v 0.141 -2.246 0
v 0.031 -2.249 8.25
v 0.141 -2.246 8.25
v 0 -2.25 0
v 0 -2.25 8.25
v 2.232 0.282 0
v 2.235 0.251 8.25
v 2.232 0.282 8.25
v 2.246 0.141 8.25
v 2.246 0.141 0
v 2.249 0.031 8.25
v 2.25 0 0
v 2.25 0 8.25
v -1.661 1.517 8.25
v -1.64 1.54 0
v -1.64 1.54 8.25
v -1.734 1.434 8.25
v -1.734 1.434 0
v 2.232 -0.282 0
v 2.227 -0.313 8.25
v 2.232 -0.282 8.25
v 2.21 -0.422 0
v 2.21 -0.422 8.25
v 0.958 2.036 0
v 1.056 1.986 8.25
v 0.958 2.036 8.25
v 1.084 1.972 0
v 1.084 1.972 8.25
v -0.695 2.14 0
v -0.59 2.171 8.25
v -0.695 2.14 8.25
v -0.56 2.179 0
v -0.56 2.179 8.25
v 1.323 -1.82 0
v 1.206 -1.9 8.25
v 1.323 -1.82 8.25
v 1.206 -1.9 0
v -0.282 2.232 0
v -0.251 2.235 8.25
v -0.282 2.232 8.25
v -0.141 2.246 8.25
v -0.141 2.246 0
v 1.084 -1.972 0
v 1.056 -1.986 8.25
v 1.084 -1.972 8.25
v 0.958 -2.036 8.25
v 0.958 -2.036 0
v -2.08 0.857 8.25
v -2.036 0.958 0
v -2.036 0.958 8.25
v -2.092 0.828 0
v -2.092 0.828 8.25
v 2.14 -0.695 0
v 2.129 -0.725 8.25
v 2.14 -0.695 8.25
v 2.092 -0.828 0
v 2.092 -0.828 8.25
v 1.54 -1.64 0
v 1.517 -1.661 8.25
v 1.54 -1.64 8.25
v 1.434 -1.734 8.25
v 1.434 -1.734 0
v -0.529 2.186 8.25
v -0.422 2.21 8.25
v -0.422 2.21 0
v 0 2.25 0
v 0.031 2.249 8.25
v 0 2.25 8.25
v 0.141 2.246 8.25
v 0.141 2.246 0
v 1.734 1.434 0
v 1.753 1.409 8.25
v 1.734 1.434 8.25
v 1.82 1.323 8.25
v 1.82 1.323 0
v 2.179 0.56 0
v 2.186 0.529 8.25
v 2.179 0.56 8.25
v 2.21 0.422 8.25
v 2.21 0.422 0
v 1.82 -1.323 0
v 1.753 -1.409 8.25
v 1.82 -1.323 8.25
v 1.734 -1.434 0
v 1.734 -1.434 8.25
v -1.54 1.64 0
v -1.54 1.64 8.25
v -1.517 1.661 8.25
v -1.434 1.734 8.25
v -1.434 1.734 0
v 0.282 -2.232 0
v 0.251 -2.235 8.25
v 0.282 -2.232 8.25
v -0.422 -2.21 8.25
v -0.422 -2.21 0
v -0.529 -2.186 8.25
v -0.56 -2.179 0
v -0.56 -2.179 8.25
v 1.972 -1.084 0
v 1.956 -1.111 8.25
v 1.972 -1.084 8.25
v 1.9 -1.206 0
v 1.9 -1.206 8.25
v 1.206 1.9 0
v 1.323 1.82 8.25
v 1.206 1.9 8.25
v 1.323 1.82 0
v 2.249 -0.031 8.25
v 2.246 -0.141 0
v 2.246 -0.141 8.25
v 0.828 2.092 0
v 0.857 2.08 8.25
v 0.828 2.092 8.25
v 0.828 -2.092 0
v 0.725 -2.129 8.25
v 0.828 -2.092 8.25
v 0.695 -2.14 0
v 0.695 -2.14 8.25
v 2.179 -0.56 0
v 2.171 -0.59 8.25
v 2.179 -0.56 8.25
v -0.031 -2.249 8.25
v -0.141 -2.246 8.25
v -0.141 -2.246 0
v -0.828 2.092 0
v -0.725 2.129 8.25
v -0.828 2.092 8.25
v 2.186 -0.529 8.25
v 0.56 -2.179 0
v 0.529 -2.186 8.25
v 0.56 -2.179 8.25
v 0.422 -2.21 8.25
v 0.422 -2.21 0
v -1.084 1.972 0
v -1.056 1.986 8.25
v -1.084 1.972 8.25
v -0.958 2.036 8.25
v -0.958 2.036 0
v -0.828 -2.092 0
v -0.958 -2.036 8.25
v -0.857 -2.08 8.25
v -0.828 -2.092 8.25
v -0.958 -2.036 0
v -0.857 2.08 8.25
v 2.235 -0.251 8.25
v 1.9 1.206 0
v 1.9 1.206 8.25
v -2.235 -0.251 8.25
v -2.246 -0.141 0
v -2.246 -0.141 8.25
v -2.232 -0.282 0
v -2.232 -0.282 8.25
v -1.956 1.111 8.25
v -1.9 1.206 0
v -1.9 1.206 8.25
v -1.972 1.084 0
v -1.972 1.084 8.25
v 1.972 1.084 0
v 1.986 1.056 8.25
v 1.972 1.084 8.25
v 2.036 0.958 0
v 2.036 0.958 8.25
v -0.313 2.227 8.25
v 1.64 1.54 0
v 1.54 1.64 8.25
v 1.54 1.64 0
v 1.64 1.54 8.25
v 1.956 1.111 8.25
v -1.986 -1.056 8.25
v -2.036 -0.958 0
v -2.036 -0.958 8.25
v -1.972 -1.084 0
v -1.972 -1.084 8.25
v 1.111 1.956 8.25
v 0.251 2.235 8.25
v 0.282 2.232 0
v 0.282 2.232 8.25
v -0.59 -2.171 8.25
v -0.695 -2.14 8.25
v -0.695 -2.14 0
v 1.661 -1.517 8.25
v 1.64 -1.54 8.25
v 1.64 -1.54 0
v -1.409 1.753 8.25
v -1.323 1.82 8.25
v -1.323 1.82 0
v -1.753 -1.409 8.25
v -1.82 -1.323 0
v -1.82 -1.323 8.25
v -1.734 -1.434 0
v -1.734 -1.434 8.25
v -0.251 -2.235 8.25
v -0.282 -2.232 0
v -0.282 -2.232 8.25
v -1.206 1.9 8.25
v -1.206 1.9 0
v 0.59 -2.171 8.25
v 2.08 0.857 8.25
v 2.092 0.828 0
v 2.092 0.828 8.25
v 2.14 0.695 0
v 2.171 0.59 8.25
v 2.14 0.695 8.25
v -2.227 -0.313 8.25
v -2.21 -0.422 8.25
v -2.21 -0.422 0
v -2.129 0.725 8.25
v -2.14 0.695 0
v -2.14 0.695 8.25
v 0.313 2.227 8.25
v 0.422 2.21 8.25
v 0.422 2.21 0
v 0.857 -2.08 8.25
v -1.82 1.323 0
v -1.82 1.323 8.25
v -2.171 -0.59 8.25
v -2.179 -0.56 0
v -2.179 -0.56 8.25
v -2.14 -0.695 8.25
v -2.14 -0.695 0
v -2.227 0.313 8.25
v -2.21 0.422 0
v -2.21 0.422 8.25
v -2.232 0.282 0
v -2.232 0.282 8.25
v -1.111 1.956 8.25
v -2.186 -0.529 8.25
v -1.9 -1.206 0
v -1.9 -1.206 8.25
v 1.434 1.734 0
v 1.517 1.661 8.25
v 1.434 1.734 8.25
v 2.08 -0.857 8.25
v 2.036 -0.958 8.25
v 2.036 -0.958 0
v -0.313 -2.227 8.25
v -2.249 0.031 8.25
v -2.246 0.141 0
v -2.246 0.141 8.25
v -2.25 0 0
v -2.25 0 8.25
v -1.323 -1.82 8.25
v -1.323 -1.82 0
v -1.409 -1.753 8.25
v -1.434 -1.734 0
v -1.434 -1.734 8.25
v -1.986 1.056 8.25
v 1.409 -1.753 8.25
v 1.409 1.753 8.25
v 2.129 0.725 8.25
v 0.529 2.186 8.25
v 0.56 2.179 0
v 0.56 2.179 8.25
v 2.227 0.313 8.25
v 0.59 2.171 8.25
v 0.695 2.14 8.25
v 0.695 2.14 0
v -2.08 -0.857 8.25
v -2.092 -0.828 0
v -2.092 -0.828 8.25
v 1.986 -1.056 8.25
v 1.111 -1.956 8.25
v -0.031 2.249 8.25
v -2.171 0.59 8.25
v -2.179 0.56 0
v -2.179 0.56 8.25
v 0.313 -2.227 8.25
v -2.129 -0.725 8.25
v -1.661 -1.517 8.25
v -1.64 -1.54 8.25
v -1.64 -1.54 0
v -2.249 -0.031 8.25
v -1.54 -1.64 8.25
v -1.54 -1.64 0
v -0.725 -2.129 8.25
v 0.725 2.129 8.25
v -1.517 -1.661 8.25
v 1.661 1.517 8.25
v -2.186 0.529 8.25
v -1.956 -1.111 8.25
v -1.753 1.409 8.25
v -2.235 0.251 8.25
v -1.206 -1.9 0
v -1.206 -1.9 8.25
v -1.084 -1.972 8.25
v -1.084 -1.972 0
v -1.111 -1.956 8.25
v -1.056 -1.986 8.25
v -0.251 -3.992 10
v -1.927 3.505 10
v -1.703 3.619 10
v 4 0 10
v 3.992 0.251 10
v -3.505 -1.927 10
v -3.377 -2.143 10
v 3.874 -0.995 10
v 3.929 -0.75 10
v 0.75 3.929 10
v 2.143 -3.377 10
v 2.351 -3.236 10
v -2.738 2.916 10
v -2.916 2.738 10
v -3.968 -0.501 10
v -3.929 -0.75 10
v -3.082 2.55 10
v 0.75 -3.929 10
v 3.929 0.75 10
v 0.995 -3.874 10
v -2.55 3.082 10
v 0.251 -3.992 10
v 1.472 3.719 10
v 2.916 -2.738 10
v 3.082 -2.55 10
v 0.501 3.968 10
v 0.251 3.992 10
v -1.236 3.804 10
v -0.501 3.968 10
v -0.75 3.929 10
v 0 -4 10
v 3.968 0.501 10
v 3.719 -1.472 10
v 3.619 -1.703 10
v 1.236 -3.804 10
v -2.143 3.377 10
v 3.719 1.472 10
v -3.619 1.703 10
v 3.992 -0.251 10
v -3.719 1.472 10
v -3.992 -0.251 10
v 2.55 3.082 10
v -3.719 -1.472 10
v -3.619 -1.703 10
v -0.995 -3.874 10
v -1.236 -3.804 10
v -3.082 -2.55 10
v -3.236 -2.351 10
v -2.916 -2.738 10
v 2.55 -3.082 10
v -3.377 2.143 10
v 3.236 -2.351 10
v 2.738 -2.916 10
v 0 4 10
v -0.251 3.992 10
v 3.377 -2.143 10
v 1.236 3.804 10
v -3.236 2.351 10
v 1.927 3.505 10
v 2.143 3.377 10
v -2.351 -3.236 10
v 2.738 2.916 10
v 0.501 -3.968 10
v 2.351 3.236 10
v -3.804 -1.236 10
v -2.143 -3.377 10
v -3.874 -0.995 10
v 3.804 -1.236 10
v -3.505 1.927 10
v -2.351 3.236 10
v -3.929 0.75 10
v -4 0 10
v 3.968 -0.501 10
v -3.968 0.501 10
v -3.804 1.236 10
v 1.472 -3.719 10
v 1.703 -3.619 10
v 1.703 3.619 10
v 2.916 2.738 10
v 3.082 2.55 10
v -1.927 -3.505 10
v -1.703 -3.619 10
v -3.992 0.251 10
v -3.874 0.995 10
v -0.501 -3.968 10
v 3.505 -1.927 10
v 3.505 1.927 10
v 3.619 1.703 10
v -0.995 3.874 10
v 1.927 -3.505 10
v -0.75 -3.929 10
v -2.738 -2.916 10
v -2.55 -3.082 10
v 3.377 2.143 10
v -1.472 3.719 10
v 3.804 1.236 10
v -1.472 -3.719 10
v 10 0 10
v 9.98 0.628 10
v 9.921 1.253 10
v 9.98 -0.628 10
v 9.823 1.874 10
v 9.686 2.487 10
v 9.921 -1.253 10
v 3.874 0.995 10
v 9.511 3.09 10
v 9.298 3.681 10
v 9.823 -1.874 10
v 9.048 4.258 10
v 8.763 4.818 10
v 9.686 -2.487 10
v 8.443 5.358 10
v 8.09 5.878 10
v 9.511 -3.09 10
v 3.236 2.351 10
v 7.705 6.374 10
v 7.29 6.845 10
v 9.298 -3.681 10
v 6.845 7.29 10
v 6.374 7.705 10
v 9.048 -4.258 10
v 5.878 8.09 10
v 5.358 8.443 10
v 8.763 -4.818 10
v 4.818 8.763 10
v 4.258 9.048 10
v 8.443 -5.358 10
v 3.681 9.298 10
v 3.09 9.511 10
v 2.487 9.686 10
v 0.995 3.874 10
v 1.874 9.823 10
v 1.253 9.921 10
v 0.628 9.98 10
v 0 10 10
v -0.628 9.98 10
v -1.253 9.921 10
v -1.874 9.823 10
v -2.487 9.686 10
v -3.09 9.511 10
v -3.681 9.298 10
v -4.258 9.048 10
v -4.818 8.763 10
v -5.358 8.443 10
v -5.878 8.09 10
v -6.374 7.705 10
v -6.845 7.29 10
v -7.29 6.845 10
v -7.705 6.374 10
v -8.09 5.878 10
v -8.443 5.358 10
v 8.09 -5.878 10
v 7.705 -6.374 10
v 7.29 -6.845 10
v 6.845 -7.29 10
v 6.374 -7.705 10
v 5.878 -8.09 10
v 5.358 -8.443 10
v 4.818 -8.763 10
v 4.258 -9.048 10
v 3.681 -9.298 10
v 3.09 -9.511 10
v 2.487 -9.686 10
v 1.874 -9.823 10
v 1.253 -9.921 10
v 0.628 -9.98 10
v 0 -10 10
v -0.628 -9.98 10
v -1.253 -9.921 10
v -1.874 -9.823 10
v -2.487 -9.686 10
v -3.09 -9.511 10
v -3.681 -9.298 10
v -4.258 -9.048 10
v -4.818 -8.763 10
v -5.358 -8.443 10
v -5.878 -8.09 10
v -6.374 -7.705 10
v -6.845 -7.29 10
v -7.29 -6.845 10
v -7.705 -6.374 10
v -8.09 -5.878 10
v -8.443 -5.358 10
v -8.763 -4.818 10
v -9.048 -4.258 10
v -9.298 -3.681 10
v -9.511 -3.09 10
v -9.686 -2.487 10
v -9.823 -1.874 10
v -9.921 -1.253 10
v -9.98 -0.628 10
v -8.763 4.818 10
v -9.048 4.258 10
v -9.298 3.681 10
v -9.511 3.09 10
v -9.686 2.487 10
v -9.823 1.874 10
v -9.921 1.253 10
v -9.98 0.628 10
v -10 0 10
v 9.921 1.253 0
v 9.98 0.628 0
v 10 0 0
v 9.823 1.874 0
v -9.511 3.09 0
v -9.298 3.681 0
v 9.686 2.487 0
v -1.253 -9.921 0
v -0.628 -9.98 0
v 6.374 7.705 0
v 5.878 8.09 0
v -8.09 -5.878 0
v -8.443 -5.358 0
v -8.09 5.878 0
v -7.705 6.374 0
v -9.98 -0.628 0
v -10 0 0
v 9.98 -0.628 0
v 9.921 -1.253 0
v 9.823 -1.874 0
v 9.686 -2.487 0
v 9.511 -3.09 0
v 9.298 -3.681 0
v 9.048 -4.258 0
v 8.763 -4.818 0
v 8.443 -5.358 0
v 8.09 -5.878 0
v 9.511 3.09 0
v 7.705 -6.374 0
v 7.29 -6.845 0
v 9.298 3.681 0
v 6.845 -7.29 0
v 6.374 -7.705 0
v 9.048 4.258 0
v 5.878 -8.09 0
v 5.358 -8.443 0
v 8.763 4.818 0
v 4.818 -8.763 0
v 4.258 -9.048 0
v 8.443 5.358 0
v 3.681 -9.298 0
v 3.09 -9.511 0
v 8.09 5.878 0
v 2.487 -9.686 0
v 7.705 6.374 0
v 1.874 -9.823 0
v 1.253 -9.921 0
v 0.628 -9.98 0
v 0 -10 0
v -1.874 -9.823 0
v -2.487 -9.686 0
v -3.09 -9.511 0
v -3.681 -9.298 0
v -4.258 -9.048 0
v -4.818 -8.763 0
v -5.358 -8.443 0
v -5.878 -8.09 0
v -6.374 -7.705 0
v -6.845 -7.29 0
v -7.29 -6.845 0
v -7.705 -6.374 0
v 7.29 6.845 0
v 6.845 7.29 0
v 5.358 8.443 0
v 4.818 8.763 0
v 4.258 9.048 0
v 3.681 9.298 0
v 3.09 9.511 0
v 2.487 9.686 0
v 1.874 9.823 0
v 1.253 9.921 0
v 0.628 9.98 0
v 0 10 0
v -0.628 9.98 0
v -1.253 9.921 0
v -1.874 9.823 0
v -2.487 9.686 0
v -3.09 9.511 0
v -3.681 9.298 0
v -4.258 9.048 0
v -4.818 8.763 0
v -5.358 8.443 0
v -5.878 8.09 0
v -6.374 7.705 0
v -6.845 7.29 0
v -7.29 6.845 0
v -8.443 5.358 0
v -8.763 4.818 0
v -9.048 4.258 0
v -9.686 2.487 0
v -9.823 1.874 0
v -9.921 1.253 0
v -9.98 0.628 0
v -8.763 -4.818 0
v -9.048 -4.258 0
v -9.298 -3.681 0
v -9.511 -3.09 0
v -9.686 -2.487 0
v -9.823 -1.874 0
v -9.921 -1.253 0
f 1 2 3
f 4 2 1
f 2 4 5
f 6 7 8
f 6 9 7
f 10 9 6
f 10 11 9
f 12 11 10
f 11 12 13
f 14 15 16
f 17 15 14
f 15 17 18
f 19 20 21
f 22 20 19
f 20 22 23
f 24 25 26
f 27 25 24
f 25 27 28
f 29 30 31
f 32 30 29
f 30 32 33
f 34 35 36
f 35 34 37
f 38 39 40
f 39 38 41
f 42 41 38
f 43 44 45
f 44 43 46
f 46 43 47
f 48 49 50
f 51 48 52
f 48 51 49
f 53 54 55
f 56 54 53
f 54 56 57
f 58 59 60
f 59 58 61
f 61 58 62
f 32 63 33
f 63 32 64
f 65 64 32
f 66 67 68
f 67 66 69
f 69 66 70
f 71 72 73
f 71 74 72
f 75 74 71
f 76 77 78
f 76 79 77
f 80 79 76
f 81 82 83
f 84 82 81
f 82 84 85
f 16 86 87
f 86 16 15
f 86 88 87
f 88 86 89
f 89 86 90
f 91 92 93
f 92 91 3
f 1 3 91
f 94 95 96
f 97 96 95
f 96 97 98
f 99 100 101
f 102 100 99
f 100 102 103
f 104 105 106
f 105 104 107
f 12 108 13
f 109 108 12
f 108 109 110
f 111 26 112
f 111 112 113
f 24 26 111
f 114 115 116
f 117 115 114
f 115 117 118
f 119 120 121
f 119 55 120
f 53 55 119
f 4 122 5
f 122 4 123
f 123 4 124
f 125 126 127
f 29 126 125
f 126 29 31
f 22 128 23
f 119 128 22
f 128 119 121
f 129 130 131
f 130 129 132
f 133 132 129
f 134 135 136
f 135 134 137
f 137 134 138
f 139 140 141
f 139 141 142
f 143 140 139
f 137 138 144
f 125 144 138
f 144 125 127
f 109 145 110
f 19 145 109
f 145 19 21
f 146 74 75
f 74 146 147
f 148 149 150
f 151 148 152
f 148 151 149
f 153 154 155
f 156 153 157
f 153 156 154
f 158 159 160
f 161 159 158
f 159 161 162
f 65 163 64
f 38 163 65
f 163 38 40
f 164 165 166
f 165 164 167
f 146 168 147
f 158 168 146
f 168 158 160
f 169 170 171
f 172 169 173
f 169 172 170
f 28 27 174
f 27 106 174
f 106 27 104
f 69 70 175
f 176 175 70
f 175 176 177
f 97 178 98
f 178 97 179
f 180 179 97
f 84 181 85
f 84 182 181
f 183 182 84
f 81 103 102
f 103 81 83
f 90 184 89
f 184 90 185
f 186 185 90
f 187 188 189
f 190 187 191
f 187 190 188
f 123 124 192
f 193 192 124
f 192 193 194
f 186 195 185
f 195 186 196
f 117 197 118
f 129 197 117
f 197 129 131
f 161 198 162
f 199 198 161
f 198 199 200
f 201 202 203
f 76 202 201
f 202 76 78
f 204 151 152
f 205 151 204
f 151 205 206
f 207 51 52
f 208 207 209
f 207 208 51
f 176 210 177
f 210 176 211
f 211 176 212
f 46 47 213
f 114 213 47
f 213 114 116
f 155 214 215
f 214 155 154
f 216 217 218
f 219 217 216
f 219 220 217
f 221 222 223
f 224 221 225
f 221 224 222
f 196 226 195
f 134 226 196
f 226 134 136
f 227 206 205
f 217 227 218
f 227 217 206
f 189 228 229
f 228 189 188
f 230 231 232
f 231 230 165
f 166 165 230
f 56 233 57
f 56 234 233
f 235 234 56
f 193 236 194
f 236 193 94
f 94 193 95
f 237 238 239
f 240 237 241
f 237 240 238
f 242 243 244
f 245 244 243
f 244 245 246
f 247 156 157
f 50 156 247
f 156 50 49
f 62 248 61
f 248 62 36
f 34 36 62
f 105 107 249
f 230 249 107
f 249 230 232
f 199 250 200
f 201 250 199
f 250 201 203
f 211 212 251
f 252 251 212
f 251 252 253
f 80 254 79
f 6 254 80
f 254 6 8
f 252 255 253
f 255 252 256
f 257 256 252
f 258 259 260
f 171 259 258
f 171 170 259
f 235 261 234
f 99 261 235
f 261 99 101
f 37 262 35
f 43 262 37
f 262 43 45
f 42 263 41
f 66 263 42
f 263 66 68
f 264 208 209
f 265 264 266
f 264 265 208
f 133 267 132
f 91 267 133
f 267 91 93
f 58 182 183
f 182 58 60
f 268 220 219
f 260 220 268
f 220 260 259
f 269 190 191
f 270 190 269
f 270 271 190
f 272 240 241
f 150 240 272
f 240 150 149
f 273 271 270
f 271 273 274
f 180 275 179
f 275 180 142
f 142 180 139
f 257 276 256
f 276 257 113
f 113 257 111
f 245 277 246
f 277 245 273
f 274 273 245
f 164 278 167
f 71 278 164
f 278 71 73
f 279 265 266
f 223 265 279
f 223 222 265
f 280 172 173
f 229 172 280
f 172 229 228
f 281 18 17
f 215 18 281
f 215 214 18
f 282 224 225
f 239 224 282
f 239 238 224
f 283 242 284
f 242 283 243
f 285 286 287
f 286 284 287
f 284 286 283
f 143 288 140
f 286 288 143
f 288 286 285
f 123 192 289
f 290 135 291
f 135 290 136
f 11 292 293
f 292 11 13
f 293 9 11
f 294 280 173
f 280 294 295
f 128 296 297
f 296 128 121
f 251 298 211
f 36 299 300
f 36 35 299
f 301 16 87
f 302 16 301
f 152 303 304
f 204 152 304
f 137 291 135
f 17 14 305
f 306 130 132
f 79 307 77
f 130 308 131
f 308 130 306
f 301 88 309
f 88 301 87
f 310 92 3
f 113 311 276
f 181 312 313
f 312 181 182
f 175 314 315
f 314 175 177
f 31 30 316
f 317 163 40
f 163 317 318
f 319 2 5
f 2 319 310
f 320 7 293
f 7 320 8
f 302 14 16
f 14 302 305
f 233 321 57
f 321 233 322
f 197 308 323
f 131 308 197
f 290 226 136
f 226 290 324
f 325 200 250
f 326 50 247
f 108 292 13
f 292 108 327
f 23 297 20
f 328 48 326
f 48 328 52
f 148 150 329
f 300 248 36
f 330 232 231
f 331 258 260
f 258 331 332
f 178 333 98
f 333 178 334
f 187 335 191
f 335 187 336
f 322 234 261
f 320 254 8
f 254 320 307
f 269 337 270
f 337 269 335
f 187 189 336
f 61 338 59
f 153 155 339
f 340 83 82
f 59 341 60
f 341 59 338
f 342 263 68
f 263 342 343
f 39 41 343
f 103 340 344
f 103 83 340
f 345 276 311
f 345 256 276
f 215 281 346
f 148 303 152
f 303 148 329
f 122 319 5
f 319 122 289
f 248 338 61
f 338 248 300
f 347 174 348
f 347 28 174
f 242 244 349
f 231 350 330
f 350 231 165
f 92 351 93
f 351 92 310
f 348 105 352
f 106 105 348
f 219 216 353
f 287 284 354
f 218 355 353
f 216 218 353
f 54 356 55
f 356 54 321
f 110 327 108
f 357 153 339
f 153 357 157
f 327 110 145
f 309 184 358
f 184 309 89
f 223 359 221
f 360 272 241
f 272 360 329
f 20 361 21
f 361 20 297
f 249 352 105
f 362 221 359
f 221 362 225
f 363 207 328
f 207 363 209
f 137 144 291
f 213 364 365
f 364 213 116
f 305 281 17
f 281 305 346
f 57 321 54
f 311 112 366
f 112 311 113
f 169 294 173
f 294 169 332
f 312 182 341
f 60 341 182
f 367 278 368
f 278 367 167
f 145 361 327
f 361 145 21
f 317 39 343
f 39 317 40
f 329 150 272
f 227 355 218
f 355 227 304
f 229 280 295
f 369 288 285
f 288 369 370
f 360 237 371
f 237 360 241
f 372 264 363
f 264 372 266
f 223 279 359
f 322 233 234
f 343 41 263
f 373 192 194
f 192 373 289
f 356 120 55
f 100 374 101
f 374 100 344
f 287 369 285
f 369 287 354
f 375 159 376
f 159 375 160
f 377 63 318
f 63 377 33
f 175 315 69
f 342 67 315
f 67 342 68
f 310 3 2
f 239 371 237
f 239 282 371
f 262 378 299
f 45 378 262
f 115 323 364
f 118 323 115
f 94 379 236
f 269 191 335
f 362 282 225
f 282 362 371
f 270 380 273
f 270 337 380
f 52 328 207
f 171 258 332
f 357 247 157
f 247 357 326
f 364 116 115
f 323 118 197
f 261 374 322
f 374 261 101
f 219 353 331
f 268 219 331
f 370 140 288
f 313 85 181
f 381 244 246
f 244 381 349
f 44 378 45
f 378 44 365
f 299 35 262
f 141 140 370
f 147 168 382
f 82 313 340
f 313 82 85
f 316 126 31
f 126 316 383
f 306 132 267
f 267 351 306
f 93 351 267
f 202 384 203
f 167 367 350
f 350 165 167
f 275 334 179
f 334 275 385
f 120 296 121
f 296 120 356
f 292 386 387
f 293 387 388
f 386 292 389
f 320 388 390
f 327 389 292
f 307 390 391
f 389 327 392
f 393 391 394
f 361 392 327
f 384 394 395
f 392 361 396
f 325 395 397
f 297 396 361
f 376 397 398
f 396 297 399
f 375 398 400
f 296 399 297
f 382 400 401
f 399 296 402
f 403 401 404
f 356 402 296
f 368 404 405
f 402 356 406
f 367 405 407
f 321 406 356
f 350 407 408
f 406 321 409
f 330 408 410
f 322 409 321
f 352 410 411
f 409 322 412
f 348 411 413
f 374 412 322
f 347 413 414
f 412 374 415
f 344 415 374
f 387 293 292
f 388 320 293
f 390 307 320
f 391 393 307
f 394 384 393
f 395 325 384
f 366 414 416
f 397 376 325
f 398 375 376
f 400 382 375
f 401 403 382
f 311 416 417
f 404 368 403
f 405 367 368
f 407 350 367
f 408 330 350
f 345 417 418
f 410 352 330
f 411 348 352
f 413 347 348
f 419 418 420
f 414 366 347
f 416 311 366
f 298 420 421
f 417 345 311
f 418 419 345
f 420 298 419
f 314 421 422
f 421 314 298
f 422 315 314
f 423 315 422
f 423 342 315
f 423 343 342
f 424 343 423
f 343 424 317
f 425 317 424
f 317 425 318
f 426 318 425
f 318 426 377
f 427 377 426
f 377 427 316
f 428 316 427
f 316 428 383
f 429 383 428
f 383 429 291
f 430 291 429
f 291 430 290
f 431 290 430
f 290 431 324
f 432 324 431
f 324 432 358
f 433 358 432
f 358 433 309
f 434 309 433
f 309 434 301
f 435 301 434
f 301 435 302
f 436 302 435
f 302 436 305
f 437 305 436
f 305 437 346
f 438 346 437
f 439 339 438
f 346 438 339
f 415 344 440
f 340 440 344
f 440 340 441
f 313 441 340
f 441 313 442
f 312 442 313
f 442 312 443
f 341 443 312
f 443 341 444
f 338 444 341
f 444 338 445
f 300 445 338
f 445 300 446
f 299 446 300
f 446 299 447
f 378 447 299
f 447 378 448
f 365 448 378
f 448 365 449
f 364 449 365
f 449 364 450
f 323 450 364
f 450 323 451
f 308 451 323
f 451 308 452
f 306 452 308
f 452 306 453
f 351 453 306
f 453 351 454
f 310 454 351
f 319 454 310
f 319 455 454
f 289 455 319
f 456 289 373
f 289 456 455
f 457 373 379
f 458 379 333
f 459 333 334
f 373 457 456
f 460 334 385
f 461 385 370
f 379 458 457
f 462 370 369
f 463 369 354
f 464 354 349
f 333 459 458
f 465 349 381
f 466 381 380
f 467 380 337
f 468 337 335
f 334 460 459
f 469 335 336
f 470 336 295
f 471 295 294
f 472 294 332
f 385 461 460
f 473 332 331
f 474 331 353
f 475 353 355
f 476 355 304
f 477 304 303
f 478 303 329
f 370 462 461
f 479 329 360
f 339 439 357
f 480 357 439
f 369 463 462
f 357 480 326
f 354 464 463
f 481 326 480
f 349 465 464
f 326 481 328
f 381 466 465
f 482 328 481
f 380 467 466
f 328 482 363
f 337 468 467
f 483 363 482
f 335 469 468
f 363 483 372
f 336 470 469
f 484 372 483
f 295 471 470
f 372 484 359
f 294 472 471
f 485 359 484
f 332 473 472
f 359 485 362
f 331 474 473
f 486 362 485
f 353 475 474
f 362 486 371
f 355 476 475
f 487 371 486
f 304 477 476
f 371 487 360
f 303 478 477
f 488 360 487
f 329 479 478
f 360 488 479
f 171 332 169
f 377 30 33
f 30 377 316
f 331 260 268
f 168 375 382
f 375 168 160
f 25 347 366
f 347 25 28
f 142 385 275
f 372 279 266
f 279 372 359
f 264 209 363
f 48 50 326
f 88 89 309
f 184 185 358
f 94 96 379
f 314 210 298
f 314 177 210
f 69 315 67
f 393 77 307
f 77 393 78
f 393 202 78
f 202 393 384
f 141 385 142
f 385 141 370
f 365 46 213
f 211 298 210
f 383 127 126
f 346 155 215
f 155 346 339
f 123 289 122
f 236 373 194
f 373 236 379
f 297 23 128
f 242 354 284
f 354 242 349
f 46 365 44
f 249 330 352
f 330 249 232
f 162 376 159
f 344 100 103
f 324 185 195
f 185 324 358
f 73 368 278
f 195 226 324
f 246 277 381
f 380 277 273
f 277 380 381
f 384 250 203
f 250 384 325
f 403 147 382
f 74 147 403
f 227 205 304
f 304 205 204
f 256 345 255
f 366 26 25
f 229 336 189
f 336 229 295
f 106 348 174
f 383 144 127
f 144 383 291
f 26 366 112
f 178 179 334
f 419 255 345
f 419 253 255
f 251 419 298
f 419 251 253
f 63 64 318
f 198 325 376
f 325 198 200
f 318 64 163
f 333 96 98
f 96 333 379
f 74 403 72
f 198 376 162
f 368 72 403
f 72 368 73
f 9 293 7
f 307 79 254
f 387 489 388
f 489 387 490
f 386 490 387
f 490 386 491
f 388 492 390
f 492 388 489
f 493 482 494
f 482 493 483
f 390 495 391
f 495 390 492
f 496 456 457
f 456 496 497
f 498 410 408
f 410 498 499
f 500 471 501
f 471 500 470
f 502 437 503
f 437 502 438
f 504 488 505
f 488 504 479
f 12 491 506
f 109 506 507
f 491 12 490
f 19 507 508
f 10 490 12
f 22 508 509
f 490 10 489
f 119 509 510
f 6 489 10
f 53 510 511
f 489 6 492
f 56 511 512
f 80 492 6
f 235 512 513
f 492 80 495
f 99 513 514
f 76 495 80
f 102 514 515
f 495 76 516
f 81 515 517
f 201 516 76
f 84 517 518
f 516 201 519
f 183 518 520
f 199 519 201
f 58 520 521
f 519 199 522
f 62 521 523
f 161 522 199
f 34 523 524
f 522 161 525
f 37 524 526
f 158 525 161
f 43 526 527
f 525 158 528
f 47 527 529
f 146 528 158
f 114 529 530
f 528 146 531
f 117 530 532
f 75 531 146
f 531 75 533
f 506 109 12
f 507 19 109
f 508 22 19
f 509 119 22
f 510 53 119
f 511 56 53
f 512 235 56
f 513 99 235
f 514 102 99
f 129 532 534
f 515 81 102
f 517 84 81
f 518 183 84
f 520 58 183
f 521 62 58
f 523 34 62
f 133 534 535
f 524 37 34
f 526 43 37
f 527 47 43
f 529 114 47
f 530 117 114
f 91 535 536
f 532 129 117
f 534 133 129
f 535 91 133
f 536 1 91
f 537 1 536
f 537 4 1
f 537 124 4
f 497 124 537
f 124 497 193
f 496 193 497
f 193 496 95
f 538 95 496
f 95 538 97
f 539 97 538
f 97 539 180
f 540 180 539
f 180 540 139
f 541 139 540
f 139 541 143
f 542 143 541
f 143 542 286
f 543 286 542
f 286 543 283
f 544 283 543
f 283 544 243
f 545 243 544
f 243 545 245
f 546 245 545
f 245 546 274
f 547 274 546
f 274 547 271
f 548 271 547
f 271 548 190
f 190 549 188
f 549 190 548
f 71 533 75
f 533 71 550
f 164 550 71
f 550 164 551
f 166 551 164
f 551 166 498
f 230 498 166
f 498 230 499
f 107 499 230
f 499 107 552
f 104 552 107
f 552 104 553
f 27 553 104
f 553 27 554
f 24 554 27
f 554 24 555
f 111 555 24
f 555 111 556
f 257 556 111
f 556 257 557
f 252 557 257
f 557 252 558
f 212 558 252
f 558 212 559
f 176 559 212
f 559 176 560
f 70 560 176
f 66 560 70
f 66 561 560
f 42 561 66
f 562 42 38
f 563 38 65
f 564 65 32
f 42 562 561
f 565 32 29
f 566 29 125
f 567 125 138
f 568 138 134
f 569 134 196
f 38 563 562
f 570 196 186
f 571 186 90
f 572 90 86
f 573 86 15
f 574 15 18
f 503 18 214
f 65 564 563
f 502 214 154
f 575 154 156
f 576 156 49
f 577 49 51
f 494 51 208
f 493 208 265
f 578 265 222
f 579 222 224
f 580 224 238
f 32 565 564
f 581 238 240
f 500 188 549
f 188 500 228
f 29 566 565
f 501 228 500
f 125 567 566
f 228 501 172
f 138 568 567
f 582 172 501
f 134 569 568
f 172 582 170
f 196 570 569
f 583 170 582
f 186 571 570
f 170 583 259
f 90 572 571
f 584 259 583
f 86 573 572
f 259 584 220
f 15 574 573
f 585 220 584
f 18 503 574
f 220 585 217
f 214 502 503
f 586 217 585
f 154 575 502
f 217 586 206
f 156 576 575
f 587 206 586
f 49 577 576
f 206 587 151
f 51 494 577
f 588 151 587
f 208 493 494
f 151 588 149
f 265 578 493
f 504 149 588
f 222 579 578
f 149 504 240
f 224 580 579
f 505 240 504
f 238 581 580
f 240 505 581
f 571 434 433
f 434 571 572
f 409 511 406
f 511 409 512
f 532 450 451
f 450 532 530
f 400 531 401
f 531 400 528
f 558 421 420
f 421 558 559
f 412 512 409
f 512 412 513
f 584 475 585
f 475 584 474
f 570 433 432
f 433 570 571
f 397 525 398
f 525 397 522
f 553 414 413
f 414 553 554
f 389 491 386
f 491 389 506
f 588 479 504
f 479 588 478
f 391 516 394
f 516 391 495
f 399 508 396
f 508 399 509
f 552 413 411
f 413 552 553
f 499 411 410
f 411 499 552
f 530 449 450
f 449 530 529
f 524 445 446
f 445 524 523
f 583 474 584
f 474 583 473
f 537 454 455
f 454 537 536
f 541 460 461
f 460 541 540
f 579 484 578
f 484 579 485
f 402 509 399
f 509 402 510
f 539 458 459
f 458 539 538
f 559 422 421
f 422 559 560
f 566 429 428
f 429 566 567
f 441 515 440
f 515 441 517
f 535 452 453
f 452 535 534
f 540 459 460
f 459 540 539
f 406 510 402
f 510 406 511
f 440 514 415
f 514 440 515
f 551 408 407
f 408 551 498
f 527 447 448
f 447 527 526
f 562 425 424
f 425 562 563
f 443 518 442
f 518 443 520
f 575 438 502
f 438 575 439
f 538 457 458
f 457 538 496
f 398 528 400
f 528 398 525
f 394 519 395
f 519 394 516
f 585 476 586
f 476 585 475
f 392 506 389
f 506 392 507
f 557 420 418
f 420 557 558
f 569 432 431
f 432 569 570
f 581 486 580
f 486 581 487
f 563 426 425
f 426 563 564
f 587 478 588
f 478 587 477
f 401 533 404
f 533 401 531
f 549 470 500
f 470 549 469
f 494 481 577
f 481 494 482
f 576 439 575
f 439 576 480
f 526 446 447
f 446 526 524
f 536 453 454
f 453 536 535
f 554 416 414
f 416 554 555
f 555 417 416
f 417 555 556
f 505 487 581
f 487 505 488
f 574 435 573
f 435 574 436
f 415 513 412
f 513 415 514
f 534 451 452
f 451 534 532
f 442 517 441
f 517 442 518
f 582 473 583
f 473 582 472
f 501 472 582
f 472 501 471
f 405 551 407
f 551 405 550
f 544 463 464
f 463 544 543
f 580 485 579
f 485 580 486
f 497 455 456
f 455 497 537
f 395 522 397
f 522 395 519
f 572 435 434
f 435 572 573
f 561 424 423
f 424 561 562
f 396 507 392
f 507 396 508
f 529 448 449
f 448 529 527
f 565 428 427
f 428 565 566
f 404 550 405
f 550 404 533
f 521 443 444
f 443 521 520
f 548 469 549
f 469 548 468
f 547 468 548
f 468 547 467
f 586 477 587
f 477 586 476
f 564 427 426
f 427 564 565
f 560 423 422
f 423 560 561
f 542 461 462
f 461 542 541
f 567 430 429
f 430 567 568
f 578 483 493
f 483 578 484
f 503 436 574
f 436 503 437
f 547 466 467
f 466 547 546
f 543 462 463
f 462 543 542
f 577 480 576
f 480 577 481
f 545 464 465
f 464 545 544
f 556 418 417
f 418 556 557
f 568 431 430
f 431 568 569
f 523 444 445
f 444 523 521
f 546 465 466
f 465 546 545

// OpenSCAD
$fn=100;
cut = 100; // arbitary large dimension

difference() {
    cylinder(d=20, h=10);
    union() {
        cylinder(d=4.5, h=cut, center=true);
        translate([0, 0, 10-2]) cylinder(d1=4, d2=8, h=2);
    }
}
